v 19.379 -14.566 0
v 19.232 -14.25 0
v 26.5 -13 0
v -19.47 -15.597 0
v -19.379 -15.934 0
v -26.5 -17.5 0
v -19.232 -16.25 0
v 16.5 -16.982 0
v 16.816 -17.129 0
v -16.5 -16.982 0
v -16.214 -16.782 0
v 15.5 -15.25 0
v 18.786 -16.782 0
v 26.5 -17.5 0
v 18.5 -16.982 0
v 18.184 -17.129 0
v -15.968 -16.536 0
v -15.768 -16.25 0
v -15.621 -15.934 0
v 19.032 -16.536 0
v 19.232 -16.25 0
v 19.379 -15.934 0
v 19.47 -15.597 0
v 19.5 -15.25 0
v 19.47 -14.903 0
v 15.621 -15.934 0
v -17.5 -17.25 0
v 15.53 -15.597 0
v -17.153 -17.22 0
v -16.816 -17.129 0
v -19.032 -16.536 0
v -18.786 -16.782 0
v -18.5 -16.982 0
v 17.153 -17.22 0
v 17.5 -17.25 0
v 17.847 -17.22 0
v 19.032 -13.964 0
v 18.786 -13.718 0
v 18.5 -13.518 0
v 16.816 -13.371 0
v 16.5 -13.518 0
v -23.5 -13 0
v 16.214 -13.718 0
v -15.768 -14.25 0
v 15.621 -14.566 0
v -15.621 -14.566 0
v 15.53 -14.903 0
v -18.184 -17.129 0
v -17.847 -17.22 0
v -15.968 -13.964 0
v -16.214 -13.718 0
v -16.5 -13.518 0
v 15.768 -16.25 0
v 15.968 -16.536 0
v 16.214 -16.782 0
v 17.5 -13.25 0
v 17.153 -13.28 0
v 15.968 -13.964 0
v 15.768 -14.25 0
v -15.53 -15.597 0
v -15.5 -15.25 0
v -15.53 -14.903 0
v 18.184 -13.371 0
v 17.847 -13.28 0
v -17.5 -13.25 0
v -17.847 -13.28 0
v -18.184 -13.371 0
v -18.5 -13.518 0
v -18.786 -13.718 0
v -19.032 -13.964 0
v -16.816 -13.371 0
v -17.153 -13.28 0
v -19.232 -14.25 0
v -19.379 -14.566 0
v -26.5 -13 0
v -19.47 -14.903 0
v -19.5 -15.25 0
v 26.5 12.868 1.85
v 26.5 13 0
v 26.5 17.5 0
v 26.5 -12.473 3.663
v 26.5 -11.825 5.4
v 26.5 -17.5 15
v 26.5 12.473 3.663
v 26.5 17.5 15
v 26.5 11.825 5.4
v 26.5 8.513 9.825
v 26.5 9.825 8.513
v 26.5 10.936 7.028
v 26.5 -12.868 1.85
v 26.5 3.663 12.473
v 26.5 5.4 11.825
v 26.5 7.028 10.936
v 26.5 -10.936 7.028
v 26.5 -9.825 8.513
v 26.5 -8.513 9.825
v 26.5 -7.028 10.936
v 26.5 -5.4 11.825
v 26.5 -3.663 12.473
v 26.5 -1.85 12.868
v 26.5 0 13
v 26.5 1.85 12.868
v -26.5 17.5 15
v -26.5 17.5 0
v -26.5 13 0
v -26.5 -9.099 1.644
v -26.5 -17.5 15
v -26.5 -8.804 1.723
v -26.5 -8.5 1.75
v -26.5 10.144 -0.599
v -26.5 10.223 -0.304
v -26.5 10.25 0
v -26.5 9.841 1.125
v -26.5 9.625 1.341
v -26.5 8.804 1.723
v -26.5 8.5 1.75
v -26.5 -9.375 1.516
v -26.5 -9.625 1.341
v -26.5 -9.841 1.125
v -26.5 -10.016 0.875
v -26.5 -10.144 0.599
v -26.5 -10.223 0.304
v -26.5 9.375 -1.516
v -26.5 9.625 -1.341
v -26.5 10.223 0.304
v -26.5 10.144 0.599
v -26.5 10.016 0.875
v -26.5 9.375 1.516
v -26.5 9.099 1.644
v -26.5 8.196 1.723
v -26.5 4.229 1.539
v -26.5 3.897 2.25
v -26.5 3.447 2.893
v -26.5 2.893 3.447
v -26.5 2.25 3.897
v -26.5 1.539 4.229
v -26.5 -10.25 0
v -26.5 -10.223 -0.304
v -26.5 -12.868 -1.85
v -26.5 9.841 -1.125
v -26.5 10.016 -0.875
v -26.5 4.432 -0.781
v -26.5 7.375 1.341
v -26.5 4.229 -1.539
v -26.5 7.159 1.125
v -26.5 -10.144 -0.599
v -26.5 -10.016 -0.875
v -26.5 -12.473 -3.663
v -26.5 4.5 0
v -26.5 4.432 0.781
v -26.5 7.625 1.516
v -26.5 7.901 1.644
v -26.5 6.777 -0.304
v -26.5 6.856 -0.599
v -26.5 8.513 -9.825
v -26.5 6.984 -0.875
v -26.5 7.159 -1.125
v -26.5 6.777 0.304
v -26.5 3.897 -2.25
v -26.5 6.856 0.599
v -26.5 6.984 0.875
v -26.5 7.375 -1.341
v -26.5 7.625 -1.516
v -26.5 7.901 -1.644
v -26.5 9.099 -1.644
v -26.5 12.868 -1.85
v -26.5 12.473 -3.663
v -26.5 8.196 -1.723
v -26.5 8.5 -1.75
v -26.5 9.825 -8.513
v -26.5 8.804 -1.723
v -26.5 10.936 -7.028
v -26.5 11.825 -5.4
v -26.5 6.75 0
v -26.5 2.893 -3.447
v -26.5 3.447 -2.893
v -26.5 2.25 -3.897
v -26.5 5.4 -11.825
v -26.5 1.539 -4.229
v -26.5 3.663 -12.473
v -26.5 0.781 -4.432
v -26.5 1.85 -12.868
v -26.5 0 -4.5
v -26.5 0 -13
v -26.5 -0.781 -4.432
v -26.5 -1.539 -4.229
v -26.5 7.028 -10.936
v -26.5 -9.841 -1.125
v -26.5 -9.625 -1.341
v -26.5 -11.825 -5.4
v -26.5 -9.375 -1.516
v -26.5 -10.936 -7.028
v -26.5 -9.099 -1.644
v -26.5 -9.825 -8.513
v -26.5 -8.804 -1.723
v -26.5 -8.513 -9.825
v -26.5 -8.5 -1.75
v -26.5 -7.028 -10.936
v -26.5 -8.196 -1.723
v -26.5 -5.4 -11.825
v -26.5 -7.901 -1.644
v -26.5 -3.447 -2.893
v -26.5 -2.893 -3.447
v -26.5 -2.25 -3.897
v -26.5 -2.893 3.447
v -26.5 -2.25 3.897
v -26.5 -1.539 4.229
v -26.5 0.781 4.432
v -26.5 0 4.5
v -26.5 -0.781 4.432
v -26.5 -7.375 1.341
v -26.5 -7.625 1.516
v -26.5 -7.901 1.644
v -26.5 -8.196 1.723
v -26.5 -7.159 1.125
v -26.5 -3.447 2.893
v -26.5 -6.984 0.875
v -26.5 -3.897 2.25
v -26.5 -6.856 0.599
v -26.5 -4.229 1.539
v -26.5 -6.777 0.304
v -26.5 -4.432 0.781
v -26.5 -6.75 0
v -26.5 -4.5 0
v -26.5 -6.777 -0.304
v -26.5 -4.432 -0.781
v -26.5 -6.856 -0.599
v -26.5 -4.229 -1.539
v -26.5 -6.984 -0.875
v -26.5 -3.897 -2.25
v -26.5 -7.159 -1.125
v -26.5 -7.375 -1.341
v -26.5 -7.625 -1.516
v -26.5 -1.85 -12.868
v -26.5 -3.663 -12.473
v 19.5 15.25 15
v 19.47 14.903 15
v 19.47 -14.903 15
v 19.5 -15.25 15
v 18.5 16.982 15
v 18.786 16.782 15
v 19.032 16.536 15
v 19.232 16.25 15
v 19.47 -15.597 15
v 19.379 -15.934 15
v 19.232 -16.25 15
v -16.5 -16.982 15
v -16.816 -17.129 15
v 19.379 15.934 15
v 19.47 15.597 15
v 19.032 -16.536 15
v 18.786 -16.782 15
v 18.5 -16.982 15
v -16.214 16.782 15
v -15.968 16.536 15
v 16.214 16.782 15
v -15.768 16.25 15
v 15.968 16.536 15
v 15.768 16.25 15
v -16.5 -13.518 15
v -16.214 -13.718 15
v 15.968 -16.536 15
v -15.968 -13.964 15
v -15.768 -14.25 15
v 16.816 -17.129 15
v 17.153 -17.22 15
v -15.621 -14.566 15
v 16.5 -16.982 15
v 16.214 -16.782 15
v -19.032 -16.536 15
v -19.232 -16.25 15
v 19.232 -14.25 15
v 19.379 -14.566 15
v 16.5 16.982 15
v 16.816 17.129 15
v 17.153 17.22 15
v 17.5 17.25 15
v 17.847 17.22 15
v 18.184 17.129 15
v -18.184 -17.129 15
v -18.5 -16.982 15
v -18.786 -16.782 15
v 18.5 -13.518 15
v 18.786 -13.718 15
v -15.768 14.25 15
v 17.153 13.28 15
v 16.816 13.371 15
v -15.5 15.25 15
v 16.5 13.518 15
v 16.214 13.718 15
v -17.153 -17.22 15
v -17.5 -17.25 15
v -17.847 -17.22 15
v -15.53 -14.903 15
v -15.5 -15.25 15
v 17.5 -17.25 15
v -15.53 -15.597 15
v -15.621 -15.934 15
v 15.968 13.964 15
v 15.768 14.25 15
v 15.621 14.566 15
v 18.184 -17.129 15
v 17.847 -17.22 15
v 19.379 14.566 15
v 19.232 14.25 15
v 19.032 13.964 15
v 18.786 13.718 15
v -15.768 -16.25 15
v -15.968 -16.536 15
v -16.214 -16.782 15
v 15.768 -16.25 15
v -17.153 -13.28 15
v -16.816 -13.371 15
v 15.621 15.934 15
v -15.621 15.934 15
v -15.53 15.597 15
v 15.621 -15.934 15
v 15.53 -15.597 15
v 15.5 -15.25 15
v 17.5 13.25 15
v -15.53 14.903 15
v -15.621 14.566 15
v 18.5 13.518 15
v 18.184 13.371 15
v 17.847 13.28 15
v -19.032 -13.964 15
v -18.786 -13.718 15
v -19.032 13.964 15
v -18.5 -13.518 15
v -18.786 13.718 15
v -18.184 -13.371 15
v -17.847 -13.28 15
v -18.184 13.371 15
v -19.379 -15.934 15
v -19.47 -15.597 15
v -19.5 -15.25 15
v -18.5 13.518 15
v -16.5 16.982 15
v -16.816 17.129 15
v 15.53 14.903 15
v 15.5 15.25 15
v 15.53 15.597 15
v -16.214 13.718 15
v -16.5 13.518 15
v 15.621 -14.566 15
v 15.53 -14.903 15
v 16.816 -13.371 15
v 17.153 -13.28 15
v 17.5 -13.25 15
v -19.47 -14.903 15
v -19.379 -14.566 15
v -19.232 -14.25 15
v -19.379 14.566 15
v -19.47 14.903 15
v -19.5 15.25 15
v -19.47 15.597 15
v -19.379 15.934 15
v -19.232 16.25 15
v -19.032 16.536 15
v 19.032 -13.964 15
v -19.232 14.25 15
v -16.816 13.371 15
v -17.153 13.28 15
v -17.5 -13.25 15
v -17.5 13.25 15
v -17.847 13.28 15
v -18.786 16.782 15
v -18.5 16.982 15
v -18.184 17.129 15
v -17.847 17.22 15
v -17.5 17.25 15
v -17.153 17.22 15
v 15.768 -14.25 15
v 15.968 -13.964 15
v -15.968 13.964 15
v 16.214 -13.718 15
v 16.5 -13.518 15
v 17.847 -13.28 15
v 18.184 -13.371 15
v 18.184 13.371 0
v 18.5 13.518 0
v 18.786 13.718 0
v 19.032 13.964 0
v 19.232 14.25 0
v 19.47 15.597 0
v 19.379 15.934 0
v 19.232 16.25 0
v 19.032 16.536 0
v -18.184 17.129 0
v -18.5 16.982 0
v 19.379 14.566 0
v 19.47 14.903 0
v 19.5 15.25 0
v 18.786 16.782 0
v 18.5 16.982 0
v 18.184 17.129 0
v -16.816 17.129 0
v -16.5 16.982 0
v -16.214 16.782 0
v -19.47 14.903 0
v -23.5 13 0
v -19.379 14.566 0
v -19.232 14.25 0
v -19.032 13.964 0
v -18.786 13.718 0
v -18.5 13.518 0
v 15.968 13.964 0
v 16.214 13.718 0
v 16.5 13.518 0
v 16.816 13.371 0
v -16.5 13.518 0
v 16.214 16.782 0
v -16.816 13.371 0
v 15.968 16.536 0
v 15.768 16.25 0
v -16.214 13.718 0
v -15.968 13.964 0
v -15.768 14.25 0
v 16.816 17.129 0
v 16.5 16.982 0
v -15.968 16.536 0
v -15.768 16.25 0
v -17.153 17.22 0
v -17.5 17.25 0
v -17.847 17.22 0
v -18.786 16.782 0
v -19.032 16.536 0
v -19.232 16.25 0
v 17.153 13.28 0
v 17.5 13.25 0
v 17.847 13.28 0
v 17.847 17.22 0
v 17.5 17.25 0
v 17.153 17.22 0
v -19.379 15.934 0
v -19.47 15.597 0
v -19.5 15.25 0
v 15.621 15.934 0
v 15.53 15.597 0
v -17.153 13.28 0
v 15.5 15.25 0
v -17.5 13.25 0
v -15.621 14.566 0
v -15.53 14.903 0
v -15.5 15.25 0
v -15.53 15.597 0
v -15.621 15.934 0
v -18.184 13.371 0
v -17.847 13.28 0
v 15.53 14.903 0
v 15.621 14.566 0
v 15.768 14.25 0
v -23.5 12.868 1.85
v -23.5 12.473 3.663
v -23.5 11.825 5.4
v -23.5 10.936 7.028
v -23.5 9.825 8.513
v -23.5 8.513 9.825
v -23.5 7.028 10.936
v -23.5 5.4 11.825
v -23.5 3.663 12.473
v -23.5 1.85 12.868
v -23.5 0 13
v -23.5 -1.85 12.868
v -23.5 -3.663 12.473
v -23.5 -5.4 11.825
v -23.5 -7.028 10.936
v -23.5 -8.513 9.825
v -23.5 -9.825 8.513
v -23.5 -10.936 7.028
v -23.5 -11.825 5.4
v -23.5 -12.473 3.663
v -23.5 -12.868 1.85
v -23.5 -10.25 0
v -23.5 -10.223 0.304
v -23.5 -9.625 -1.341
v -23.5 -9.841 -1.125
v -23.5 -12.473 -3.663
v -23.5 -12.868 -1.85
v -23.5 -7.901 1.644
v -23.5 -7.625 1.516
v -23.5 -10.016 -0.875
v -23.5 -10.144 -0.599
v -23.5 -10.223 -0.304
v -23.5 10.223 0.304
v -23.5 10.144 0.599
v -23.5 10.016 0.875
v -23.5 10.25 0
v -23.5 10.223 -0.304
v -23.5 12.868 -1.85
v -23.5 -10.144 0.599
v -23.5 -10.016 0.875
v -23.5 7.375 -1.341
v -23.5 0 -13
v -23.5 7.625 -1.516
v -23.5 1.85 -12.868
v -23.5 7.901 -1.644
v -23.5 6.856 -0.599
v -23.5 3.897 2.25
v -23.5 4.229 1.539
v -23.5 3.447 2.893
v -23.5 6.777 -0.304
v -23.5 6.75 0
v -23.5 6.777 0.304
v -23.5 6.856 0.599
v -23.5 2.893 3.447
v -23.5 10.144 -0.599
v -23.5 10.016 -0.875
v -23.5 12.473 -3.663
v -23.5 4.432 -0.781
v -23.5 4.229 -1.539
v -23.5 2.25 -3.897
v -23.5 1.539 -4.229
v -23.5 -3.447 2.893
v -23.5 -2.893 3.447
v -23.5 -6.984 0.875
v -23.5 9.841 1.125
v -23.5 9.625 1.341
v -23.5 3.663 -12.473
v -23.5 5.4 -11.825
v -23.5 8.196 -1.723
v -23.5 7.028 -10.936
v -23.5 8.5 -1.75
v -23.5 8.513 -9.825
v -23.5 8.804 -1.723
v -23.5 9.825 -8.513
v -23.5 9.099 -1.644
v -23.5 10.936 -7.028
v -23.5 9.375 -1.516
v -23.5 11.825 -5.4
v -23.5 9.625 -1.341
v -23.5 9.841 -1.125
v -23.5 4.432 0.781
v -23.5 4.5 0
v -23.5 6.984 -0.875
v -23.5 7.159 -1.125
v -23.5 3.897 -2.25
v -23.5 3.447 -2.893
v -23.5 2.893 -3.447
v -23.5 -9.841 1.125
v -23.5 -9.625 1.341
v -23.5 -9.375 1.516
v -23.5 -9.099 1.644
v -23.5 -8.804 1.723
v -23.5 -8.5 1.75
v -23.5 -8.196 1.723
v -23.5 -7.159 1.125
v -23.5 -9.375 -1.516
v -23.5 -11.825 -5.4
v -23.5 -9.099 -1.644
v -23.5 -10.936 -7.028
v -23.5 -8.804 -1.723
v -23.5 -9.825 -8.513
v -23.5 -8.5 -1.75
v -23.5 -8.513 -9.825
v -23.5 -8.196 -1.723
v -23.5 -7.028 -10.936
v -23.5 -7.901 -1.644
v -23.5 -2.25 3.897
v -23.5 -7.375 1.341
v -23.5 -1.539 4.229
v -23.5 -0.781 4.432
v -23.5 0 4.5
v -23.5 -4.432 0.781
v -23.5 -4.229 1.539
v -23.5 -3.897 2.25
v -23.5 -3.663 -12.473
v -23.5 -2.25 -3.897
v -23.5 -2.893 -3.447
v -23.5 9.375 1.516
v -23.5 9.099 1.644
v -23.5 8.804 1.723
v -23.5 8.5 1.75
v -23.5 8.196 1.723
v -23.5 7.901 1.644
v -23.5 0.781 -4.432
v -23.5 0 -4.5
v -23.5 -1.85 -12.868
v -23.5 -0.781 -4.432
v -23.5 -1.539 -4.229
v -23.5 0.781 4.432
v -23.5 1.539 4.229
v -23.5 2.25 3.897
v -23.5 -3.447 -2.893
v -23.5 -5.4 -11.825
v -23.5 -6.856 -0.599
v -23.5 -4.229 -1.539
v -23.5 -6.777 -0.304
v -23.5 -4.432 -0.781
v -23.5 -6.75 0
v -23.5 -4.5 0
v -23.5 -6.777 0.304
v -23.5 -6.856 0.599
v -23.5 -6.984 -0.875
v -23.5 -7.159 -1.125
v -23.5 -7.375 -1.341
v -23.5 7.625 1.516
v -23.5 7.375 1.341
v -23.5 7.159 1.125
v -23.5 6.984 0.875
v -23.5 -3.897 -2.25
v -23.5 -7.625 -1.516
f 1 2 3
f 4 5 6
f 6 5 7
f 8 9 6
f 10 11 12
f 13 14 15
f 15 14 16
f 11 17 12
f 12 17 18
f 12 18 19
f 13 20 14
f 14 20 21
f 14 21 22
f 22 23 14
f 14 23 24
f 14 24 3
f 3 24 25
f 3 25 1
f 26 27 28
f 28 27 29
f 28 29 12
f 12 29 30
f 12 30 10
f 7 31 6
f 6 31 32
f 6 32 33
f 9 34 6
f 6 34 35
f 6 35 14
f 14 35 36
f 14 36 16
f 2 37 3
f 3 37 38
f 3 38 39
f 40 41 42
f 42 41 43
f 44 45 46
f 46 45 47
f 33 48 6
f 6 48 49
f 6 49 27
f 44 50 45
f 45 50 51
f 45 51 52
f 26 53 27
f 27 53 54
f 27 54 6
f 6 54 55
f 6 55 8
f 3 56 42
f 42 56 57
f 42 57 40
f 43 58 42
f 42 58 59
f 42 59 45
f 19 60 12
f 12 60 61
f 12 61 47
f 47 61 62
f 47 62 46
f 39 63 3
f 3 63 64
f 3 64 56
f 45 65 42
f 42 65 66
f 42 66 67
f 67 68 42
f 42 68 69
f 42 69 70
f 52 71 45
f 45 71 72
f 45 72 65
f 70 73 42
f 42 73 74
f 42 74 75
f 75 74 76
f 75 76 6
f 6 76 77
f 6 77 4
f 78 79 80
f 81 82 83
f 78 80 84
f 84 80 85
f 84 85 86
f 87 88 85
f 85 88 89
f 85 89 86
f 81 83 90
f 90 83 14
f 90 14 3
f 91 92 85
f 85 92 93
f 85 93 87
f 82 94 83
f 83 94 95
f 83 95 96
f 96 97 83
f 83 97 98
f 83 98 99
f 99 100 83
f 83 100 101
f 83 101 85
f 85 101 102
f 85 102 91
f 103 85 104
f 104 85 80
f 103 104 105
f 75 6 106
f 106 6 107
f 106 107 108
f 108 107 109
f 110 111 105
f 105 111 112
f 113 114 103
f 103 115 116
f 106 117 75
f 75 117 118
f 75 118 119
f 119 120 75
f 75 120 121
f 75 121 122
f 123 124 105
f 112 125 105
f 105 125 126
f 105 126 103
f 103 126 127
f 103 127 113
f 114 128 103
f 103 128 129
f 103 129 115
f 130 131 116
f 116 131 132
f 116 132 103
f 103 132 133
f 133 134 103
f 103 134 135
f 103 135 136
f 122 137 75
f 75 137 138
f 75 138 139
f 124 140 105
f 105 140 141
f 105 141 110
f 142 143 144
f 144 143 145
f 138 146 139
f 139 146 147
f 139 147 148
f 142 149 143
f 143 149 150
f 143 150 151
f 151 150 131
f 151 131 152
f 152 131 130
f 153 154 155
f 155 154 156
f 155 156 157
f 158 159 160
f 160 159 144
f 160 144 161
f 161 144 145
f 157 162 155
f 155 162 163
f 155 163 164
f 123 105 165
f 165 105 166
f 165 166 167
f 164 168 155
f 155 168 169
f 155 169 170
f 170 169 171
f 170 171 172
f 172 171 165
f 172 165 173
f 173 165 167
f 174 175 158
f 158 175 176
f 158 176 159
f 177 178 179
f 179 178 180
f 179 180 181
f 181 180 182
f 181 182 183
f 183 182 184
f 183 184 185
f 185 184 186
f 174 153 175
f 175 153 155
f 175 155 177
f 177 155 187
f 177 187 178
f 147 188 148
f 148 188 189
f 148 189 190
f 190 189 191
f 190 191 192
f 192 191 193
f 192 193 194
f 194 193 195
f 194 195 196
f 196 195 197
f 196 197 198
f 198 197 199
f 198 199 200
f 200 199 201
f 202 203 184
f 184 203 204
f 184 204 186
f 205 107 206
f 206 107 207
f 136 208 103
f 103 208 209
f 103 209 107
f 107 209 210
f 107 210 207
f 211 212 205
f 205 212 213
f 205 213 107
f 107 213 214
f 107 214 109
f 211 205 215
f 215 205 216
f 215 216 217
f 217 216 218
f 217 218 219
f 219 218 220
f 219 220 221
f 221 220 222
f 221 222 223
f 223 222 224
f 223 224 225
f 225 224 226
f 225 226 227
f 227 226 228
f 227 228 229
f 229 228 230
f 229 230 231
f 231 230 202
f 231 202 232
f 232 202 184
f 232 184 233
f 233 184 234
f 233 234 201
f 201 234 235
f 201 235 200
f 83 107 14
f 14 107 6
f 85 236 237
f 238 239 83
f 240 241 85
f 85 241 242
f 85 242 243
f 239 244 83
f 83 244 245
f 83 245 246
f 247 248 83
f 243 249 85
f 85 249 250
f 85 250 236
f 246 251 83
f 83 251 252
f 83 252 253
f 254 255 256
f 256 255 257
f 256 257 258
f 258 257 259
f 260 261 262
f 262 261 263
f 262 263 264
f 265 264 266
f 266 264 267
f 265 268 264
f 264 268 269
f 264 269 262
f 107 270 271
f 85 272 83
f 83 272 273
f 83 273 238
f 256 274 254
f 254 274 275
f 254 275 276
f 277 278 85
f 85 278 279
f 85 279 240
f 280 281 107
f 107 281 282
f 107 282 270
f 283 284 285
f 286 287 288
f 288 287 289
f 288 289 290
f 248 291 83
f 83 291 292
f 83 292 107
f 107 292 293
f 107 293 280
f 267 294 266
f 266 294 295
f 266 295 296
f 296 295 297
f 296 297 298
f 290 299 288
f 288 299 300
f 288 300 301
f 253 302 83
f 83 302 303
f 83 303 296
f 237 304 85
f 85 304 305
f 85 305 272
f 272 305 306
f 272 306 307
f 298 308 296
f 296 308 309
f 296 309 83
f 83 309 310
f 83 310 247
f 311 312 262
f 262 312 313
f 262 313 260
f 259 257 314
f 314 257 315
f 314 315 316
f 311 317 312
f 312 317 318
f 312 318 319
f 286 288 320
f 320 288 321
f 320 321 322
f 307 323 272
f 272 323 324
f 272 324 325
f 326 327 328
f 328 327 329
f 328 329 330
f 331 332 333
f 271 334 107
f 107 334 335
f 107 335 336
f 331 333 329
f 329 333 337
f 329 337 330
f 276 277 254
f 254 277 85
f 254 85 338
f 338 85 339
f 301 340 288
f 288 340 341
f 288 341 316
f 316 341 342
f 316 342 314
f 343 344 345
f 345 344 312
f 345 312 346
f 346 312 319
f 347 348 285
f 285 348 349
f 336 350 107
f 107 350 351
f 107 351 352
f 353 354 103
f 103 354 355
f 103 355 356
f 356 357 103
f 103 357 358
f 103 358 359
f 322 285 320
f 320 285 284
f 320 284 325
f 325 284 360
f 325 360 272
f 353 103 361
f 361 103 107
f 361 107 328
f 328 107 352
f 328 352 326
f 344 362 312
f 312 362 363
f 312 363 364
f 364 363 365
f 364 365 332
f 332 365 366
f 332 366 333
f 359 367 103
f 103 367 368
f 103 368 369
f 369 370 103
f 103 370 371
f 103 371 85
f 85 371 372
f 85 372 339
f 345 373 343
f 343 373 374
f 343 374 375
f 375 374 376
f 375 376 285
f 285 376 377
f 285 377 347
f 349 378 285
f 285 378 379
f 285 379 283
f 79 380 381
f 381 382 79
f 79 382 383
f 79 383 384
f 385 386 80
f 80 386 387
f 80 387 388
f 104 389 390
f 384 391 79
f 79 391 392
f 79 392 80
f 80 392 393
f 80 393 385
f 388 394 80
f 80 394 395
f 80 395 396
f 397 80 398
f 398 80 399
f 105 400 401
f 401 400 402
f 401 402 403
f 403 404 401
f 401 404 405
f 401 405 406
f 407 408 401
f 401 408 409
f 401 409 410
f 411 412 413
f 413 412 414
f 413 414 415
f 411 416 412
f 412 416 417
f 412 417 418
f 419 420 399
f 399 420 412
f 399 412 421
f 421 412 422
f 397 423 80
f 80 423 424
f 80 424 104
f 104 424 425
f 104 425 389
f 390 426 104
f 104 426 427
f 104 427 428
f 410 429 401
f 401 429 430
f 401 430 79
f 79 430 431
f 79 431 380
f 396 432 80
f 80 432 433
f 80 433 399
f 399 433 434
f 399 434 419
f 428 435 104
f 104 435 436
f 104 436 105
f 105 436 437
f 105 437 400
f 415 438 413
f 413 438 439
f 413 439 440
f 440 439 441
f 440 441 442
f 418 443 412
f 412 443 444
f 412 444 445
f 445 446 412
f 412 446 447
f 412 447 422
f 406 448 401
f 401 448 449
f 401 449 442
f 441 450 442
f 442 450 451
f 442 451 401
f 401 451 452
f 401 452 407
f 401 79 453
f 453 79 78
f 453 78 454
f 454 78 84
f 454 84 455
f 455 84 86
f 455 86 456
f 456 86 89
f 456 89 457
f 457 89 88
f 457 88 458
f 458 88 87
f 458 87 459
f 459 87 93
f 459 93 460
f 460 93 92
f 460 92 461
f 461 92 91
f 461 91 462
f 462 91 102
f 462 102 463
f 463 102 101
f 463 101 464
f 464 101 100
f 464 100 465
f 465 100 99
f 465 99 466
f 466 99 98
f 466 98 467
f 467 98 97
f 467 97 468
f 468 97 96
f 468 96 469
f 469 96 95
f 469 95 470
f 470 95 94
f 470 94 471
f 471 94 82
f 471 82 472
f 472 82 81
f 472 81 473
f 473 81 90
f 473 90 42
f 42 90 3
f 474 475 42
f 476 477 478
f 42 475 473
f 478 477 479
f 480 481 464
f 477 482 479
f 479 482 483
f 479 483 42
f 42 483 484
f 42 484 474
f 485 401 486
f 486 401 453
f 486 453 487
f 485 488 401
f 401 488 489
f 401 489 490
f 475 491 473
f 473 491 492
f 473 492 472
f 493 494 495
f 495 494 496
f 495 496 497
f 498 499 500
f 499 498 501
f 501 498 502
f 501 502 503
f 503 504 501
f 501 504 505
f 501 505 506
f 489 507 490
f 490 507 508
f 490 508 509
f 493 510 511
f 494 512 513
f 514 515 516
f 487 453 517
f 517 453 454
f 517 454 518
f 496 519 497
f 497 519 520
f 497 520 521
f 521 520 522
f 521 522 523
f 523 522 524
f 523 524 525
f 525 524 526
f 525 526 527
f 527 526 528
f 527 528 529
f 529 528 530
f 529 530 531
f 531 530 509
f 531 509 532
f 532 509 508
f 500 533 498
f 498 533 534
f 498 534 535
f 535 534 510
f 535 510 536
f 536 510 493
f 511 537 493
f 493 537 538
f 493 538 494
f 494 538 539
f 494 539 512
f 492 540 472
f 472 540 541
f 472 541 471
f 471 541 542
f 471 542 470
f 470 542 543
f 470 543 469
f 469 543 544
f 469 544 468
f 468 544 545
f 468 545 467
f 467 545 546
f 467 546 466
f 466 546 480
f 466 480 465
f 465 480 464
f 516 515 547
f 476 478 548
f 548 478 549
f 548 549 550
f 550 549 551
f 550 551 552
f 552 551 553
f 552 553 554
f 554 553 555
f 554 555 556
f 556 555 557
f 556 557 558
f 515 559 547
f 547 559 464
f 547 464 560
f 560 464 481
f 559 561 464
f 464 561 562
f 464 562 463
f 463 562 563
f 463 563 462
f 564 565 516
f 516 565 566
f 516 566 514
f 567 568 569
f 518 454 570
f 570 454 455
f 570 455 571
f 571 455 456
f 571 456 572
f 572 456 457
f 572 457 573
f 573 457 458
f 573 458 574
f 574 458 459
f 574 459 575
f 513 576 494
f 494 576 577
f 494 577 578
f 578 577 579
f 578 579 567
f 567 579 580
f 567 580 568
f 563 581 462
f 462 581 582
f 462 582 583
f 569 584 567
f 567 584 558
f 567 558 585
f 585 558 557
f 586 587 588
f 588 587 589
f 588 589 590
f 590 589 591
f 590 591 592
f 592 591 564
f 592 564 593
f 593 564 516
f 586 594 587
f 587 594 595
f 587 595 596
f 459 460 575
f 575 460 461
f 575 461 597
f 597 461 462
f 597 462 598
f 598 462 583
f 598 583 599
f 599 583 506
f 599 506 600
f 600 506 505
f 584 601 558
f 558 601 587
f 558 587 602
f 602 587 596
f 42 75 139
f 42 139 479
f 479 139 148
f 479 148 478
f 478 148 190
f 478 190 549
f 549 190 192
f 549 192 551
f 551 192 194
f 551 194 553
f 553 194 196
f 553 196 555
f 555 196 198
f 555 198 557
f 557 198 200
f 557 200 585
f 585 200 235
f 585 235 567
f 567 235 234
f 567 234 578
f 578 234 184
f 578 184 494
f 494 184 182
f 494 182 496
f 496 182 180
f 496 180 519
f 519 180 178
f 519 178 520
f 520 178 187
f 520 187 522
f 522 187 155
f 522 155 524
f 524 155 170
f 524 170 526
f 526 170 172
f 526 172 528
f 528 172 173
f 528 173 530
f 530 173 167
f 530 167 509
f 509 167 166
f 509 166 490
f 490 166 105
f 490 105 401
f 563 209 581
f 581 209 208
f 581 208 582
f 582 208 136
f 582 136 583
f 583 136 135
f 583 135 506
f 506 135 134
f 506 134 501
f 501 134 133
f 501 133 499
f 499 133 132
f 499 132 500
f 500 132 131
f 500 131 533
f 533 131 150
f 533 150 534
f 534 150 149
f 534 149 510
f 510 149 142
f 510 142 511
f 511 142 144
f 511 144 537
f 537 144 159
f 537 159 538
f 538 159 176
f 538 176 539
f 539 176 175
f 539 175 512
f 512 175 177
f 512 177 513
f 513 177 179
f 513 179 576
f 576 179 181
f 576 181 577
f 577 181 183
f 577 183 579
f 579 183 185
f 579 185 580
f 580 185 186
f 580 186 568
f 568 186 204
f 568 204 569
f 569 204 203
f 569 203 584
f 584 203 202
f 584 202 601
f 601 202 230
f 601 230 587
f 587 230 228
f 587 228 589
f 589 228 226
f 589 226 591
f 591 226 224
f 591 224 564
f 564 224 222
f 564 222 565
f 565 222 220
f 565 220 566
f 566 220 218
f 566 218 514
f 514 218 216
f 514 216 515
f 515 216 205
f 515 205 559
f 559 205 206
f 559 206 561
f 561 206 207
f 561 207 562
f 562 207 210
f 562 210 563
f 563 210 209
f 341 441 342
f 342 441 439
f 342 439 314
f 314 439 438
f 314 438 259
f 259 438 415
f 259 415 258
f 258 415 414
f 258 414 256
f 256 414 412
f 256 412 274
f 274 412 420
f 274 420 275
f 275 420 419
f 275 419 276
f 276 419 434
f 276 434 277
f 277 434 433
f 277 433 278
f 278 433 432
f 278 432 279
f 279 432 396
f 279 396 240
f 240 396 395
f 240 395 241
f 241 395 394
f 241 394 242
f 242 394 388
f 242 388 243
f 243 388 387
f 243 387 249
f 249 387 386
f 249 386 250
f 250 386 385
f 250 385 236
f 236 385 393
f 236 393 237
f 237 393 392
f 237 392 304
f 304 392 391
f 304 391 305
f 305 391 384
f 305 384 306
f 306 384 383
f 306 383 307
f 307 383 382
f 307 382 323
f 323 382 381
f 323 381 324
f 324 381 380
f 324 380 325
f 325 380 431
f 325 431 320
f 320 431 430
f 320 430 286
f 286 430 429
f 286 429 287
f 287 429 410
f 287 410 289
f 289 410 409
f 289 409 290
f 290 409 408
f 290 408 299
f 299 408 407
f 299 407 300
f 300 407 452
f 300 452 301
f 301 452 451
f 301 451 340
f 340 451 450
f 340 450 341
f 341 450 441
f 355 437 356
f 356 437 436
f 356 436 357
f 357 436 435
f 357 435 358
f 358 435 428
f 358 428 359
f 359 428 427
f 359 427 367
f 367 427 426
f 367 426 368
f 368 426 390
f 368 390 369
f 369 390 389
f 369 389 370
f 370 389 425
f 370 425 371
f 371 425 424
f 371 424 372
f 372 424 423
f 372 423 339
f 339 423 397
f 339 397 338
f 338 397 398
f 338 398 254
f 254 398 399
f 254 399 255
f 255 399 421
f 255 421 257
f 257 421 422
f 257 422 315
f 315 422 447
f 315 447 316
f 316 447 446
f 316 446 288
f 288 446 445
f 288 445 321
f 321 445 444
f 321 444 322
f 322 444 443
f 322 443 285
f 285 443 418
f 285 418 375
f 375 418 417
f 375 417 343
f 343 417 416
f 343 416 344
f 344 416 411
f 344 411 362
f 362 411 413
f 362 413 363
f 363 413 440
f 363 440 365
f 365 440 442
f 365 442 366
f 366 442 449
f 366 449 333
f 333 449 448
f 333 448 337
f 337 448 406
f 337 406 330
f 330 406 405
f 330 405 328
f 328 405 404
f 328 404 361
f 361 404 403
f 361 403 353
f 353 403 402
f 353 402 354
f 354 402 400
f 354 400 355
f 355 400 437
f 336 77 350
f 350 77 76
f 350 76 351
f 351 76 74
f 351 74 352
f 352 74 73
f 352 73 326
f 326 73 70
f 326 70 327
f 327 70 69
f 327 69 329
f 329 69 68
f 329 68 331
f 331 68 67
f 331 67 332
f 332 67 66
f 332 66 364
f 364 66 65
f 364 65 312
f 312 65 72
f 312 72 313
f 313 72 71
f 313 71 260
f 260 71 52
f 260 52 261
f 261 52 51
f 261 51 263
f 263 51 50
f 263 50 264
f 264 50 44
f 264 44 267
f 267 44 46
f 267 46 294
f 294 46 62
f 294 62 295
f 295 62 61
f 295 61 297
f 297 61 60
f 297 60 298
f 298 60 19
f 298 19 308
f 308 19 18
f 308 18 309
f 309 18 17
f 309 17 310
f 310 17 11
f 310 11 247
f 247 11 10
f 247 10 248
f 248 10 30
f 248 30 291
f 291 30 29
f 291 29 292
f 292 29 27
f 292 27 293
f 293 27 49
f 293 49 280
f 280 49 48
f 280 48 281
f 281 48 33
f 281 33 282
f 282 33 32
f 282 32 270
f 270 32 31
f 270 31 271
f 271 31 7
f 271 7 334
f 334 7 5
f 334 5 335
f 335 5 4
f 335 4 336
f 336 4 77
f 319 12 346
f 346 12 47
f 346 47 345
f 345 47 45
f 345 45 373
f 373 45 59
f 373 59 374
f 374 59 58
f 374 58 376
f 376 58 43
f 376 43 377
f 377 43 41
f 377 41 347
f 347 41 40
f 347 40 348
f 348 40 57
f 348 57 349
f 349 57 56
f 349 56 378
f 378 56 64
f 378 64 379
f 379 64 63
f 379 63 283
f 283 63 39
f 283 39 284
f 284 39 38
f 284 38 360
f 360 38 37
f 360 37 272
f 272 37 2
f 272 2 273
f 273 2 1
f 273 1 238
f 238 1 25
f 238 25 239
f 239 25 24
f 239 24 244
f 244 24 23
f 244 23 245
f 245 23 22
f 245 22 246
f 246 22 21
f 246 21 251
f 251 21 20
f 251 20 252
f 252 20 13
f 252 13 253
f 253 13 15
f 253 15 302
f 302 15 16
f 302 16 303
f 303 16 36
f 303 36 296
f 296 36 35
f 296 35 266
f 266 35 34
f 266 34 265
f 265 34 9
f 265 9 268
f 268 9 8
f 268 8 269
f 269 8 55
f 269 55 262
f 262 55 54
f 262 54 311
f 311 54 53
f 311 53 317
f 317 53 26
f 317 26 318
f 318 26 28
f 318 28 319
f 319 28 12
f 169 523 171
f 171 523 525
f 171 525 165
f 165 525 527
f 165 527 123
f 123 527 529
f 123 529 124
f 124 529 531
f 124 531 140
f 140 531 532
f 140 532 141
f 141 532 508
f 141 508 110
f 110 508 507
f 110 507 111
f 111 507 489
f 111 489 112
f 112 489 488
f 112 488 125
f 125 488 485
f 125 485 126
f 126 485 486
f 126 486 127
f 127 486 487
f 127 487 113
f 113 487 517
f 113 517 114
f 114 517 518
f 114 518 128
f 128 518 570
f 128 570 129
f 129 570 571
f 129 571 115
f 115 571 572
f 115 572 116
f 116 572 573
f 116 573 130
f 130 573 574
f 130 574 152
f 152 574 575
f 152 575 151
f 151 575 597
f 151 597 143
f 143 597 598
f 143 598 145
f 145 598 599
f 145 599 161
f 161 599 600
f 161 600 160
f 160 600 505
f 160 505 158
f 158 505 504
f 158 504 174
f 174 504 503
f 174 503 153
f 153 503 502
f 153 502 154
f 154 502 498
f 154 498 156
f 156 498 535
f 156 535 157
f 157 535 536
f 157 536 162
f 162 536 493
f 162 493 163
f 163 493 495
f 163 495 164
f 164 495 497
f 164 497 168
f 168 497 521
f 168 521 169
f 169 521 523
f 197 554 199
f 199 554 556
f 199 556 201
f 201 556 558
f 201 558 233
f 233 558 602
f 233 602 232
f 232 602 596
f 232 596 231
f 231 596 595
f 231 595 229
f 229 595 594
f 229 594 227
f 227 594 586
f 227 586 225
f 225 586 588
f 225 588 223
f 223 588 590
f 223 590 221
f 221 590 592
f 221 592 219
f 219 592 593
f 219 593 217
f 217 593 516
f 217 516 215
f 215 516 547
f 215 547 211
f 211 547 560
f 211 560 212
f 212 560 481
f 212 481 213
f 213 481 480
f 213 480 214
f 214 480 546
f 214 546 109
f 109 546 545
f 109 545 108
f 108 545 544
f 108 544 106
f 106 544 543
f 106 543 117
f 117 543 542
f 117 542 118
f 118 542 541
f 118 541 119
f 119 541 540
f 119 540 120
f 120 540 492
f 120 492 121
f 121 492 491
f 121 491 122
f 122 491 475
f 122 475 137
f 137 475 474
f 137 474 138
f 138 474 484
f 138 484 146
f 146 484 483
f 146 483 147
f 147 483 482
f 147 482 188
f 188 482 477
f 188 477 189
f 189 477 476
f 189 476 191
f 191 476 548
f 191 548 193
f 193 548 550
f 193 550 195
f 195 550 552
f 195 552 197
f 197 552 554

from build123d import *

# Parameters (mm, degrees)
SKETCH1_W           = 53
SKETCH1_H           = 35
BOSS_EXTRUDE1_DEPTH = 15
SKETCH3_R           = 13
CUT_EXTRUDE1_DEPTH  = 50
BOSS_EXTRUDE4_START = -3
SKETCH6_R           = 13
BOSS_EXTRUDE4_DEPTH = 3
SKETCH7_R           = 4.5
CUT_EXTRUDE2_DEPTH  = 54
SKETCH10_R          = 2
CUT_EXTRUDE3_DEPTH  = 16
SKETCH17_R          = 1.75
CUT_EXTRUDE5_DEPTH  = 4


with BuildPart() as part:
    # Sketch1 → Boss-Extrude1 (new body)
    with BuildSketch(Plane.XY):
        Rectangle(SKETCH1_W, SKETCH1_H)
    extrude(amount=BOSS_EXTRUDE1_DEPTH)

    # Sketch3 → Cut-Extrude1 (cut)
    with BuildSketch(Plane(origin=(26.5, 0, 0), x_dir=(0, 0, -1), z_dir=(1, 0, 0))):
        Circle(SKETCH3_R)
    extrude(amount=-CUT_EXTRUDE1_DEPTH, mode=Mode.SUBTRACT)

    # Sketch6 → Boss-Extrude4 (add)
    with BuildSketch(Plane.ZY.offset(26.5).offset(BOSS_EXTRUDE4_START)):
        Circle(SKETCH6_R)
    extrude(amount=BOSS_EXTRUDE4_DEPTH)

    # Sketch7 → Cut-Extrude2 (cut, through all)
    with BuildSketch(Plane.ZY.offset(26.5)):
        Circle(SKETCH7_R)
    extrude(amount=-CUT_EXTRUDE2_DEPTH, mode=Mode.SUBTRACT)

    # Sketch10 → Cut-Extrude3 (cut, through all)
    with BuildSketch(Plane(origin=(0, 0, 0), x_dir=(-1, 0, 0), z_dir=(0, 0, -1))):
        with Locations((-17.5, 15.25)):
            Circle(SKETCH10_R)
        with Locations((17.5, 15.25)):
            Circle(SKETCH10_R)
        with Locations((17.5, -15.25)):
            Circle(SKETCH10_R)
        with Locations((-17.5, -15.25)):
            Circle(SKETCH10_R)
    extrude(amount=-CUT_EXTRUDE3_DEPTH, mode=Mode.SUBTRACT)

    # Sketch17 → Cut-Extrude5 (cut, through all)
    with BuildSketch(Plane(origin=(-23.5, 0, 0), x_dir=(0, 0, -1), z_dir=(1, 0, 0))):
        with Locations((0, -8.5)):
            Circle(SKETCH17_R)
        with Locations((0, 8.5)):
            Circle(SKETCH17_R)
    extrude(amount=-CUT_EXTRUDE5_DEPTH, mode=Mode.SUBTRACT)


solid = part.part
